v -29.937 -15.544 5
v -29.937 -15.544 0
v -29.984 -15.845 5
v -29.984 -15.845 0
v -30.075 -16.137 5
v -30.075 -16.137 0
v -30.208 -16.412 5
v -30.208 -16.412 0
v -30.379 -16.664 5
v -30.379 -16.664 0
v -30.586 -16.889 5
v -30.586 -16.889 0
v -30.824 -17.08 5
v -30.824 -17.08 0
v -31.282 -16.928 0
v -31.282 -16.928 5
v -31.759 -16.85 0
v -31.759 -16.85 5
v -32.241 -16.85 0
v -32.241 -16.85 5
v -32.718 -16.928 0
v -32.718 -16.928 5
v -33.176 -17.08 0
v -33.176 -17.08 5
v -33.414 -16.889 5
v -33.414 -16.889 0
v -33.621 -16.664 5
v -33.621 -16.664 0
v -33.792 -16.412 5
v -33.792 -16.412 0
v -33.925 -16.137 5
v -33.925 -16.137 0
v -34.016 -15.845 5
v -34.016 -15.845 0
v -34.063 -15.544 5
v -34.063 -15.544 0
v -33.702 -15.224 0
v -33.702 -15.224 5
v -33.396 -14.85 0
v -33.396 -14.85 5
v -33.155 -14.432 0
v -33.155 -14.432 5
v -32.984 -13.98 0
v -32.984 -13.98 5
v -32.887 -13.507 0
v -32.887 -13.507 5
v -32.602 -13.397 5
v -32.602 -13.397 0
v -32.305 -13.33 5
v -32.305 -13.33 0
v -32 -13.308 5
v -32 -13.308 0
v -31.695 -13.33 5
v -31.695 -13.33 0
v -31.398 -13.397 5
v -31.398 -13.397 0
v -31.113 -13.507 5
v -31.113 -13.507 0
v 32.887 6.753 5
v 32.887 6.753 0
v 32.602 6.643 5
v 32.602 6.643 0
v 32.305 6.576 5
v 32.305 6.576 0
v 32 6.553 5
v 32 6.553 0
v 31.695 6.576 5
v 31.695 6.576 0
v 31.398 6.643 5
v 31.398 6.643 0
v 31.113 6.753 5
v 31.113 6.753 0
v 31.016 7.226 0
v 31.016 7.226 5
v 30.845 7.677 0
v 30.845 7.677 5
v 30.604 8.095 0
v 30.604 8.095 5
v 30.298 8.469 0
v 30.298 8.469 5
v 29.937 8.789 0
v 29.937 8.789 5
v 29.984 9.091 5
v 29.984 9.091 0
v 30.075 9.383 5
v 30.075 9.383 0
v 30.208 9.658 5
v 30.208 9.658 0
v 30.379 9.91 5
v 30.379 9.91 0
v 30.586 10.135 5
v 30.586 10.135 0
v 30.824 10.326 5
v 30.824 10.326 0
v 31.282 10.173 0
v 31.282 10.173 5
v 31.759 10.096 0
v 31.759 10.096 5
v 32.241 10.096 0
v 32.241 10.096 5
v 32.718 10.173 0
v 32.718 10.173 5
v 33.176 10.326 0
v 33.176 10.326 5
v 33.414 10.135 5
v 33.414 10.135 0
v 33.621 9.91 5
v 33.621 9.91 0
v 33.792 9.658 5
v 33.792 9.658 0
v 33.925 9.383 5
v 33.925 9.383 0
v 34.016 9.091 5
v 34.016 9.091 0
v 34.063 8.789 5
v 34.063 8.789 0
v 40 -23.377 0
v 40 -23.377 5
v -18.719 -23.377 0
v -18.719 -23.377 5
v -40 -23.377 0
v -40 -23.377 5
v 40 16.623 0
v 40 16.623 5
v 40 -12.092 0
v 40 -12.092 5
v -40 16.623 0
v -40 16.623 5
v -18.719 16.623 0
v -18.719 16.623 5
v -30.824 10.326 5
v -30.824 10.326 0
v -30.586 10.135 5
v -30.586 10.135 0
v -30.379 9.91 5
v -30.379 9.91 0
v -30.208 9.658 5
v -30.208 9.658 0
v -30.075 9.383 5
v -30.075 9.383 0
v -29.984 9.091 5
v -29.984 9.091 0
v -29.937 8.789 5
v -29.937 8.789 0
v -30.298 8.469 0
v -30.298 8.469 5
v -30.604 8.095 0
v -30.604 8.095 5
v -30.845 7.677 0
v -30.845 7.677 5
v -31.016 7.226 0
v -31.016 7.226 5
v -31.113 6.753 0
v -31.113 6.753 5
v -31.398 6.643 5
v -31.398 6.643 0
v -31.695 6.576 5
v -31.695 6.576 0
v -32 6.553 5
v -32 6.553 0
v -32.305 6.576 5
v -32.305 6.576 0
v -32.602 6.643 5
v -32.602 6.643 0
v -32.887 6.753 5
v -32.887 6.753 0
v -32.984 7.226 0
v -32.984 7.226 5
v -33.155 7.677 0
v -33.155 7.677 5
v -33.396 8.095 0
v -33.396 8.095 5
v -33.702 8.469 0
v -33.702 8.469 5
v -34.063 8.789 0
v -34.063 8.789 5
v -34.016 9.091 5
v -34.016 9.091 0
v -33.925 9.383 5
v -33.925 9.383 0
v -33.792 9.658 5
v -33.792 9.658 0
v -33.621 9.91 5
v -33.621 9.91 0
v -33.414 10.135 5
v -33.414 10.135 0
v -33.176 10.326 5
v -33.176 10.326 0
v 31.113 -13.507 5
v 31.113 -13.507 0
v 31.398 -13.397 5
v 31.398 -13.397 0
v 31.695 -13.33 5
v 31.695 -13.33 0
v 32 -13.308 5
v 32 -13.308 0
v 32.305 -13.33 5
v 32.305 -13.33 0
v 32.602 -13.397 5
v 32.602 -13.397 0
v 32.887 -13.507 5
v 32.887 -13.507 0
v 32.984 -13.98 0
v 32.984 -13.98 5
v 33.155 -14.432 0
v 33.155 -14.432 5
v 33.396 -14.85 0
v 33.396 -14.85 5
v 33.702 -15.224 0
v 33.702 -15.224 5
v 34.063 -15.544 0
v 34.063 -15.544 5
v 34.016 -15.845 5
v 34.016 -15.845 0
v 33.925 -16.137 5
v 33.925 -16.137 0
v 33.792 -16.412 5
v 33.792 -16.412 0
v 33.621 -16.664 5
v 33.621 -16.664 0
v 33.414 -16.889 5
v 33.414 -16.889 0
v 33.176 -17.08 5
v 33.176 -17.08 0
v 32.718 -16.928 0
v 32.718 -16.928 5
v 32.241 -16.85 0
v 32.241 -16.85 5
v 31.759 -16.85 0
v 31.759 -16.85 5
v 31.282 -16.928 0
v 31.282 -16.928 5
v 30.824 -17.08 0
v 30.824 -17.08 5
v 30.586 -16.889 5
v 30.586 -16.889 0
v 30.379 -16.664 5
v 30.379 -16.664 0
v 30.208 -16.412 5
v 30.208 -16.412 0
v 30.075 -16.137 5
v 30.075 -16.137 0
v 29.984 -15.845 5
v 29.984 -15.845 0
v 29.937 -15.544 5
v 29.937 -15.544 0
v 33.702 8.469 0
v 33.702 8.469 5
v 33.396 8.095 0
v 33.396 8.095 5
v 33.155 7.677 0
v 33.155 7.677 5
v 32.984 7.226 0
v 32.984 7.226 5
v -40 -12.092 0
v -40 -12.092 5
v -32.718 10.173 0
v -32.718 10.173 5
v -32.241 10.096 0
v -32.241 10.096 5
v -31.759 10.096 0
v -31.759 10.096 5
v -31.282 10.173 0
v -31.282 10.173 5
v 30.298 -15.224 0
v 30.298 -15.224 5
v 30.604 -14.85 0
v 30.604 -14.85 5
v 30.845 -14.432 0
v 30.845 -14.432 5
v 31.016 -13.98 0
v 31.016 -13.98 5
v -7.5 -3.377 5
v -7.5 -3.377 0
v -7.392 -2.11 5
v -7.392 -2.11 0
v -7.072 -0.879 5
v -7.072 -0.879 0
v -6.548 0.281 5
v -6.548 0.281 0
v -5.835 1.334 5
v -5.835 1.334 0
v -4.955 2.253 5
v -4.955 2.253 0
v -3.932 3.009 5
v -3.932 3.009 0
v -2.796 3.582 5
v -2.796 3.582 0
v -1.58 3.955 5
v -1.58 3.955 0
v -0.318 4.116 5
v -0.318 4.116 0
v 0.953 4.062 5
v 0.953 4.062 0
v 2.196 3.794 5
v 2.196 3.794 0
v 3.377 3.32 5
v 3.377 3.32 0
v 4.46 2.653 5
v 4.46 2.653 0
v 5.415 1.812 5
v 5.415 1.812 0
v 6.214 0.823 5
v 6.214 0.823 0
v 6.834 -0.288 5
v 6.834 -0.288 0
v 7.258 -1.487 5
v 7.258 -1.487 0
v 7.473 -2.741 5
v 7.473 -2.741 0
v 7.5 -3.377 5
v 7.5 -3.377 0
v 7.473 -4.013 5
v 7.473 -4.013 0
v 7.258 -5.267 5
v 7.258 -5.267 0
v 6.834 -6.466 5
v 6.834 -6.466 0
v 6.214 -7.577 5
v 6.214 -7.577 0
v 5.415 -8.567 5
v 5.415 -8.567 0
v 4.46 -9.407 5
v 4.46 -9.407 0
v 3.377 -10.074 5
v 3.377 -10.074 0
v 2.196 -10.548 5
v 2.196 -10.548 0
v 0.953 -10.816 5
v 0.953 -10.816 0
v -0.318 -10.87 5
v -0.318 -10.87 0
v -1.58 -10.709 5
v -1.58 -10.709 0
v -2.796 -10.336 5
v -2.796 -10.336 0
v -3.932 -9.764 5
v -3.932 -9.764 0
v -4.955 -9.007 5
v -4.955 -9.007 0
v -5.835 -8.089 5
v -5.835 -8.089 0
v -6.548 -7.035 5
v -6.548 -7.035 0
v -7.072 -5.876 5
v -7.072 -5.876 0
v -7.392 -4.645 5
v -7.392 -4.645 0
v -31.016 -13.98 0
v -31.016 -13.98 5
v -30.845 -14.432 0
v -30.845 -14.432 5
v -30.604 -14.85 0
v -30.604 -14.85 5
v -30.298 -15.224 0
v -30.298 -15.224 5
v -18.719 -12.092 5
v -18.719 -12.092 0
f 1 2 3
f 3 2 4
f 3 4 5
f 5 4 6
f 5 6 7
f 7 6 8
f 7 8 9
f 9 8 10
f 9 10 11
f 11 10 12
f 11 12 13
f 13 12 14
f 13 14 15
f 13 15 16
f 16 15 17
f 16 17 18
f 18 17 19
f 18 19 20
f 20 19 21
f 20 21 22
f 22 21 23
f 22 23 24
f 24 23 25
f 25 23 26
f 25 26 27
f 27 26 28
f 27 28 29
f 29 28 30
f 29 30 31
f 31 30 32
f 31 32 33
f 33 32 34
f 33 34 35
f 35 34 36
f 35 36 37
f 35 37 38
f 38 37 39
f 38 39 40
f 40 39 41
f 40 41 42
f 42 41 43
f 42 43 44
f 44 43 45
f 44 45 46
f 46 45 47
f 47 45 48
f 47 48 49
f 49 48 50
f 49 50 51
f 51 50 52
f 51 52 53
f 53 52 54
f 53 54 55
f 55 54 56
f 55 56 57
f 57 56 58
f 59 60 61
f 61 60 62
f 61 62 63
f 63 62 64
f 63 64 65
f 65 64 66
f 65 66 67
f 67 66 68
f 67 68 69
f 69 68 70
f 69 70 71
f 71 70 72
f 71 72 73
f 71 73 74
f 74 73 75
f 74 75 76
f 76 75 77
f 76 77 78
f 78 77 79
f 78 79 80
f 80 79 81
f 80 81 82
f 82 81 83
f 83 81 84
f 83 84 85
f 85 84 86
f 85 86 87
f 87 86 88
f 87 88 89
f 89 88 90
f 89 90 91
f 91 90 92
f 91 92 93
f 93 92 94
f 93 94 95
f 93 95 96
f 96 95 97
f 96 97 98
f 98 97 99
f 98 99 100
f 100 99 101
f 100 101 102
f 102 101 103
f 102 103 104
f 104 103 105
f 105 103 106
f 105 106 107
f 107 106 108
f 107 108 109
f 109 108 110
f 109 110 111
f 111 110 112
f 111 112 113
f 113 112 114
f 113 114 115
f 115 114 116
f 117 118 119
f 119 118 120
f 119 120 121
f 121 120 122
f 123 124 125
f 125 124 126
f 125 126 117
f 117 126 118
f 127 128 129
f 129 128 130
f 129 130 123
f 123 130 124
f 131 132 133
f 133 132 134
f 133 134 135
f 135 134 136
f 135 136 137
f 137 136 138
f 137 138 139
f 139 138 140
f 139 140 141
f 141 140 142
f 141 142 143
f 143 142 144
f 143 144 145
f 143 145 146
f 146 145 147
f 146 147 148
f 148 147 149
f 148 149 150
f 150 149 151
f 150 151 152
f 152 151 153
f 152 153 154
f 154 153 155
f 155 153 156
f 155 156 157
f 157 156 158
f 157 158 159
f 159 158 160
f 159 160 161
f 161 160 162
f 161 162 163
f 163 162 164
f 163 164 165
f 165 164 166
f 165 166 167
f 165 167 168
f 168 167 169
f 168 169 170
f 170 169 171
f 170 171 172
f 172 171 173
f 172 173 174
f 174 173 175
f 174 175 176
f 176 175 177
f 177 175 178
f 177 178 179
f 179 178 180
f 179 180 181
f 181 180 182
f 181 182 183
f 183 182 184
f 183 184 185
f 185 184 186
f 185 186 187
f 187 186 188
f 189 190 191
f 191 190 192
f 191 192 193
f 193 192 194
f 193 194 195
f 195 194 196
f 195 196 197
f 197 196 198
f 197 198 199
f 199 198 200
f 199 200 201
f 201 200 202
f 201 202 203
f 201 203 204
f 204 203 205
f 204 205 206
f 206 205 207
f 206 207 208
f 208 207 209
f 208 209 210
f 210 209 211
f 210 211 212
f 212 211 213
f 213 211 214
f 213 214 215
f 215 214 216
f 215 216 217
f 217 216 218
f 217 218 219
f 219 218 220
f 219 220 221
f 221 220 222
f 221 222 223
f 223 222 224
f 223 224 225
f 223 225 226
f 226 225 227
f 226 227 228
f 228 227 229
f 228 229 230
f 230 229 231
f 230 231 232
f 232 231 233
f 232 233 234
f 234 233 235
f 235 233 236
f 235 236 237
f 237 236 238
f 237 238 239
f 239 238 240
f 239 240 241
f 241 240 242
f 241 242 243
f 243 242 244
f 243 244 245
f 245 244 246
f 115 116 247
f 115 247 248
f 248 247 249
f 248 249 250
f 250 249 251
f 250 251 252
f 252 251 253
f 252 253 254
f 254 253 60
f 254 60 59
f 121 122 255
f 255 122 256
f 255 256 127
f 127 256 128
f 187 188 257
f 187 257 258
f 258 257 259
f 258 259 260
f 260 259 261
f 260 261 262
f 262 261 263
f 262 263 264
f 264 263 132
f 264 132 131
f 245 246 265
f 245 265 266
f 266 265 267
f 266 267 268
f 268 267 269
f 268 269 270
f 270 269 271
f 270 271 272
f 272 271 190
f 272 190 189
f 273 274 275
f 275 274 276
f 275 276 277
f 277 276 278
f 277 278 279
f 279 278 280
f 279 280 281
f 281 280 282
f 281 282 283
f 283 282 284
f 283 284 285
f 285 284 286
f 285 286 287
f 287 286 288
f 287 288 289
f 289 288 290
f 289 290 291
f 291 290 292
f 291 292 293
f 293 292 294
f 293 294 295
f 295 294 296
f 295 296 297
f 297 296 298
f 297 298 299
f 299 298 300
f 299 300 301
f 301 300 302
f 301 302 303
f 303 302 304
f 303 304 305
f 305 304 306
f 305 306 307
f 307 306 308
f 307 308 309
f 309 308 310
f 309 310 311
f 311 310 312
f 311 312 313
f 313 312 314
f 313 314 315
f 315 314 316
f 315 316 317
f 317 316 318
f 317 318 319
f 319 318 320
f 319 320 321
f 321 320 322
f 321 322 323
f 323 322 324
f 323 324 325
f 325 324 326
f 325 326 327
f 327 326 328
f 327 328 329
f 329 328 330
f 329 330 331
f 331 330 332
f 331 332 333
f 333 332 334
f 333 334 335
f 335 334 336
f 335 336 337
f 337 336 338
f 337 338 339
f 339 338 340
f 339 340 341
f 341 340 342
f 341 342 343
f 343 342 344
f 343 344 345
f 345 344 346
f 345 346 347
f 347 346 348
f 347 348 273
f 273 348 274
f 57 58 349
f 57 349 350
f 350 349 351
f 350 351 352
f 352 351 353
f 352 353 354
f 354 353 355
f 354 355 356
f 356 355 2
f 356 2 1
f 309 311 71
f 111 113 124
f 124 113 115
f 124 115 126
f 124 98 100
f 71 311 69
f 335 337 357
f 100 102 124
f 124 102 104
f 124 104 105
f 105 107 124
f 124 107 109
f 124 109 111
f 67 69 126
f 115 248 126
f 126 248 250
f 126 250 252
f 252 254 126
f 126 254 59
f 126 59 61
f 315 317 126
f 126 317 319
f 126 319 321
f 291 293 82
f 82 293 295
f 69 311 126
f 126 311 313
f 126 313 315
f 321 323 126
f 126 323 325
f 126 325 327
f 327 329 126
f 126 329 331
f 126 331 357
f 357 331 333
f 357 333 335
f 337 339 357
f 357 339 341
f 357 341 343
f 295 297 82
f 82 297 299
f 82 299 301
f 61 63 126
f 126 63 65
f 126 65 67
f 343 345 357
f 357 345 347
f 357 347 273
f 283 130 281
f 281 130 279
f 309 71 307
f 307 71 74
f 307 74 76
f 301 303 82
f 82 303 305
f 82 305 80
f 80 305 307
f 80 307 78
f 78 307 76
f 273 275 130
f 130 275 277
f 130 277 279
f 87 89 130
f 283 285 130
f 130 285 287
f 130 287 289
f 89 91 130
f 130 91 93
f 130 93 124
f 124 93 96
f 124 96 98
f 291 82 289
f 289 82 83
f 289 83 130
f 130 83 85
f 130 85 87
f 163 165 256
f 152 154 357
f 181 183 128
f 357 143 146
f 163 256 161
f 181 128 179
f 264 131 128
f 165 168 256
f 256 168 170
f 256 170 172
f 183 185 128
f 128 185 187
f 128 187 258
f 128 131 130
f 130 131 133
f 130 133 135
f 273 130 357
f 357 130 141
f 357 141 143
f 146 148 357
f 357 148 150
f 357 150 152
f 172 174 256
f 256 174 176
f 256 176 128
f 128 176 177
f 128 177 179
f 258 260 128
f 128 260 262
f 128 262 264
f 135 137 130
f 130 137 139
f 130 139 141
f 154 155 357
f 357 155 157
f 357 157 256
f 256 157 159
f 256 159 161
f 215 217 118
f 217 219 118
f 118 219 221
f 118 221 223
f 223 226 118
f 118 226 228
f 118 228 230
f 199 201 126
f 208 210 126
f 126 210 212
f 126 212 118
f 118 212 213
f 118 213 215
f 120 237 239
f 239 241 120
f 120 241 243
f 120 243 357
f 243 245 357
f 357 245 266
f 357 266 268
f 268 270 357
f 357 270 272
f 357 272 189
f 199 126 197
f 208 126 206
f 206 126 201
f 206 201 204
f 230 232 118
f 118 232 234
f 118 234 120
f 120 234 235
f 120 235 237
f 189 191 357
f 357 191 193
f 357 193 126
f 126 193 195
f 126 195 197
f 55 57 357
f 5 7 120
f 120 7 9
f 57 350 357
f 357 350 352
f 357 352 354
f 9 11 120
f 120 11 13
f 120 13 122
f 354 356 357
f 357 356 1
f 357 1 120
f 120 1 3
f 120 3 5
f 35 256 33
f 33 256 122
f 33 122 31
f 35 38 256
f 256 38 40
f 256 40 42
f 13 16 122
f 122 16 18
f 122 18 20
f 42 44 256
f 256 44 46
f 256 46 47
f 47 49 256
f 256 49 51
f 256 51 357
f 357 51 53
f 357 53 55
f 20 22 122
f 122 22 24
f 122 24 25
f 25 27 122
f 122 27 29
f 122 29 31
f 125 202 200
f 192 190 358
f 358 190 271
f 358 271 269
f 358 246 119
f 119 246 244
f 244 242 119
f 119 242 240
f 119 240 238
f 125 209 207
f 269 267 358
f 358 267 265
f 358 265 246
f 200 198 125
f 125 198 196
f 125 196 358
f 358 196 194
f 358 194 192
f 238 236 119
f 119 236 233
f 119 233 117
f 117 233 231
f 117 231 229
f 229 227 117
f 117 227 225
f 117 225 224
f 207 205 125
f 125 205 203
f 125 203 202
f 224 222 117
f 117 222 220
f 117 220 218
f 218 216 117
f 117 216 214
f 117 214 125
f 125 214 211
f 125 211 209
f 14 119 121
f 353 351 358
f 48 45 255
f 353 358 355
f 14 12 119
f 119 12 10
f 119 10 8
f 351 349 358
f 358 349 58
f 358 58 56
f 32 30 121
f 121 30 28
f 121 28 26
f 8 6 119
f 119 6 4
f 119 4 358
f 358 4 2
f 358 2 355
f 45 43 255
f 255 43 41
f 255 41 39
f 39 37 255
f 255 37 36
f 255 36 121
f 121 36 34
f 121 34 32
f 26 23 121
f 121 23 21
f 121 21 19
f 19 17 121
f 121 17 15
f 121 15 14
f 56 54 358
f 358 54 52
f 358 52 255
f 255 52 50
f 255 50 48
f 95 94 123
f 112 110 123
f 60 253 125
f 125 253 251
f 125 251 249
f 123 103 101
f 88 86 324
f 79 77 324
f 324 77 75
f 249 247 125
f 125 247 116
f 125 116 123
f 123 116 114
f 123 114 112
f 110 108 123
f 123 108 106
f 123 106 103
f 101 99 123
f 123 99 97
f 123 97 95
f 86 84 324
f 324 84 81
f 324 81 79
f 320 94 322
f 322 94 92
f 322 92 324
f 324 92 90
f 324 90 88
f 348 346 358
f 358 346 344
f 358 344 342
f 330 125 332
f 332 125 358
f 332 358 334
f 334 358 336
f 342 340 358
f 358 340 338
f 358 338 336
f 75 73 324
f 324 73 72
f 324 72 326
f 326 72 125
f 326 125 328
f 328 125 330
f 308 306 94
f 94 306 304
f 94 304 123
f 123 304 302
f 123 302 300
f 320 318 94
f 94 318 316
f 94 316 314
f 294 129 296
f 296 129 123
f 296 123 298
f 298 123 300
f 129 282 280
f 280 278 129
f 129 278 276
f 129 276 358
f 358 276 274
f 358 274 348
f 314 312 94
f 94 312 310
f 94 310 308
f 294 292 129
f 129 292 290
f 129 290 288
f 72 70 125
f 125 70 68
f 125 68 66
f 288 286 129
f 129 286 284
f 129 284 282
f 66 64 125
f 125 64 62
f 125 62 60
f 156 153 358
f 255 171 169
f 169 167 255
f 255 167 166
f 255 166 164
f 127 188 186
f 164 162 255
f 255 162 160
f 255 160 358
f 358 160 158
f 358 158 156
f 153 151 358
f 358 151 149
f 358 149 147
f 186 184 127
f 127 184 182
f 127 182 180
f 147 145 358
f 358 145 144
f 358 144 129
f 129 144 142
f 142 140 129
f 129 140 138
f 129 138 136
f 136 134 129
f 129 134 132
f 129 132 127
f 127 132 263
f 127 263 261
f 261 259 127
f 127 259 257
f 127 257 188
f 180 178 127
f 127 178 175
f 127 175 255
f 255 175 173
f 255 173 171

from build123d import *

# Parameters (mm, degrees)
ESQUISSE1_W        = 80
ESQUISSE1_H        = 40
ESQUISSE1_R        = 7.5
ESQUISSE1_R_2      = 2.069624396
BOSS_EXTRU_1_DEPTH = 5


with BuildPart() as part:
    # Esquisse1 → Boss.-Extru.1 (new body)
    # profile 1 of 13: a face of its own
    with BuildSketch(Plane.XY):
        with Locations((0, -3.377163011)):
            Rectangle(ESQUISSE1_W, ESQUISSE1_H)
        with Locations((0, -3.377163011)):
            Circle(ESQUISSE1_R, mode=Mode.SUBTRACT)
        with Locations((32, -15.377163011)):
            Circle(ESQUISSE1_R_2, mode=Mode.SUBTRACT)
        with Locations((-32, 8.622836989)):
            Circle(ESQUISSE1_R_2, mode=Mode.SUBTRACT)
        with Locations((32, 8.622836989)):
            Circle(ESQUISSE1_R_2, mode=Mode.SUBTRACT)
        with Locations((-32, -15.377163011)):
            Circle(ESQUISSE1_R_2, mode=Mode.SUBTRACT)
    # profile 2 of 13: a face of its own
    with BuildSketch(Plane.XY):
        with BuildLine():
            ThreePointArc((-34.062905963, 8.789462695), (-33.792347303, 7.588024791), (-32.887150887, 6.752995165))
            ThreePointArc((-32.887150887, 6.752995165), (-33.267182328, 7.89122893), (-34.062905963, 8.789462695))
        make_face()
    # profile 3 of 13: a face of its own
    with BuildSketch(Plane.XY):
        with BuildLine():
            ThreePointArc((-33.175755077, 10.326053105), (-32, 10.086053105), (-30.824244923, 10.326053105))
            ThreePointArc((-30.824244923, 10.326053105), (-32, 10.692461384), (-33.175755077, 10.326053105))
        make_face()
    # profile 4 of 13: a face of its own
    with BuildSketch(Plane.XY):
        with BuildLine():
            ThreePointArc((-31.112849113, 6.752995165), (-30.250798145, 7.516655263), (-29.930375604, 8.622836989))
            ThreePointArc((-29.930375604, 8.622836989), (-29.932055895, 8.706217537), (-29.937094037, 8.789462695))
            ThreePointArc((-29.937094037, 8.789462695), (-30.732817672, 7.89122893), (-31.112849113, 6.752995165))
        make_face()
    # profile 5 of 13: a face of its own
    with BuildSketch(Plane.XY):
        with BuildLine():
            ThreePointArc((-29.930375604, -15.377163011), (-30.250798145, -14.270981286), (-31.112849113, -13.507321188))
            ThreePointArc((-31.112849113, -13.507321188), (-30.732817672, -14.645554953), (-29.937094037, -15.543788718))
            ThreePointArc((-29.937094037, -15.543788718), (-29.932055895, -15.46054356), (-29.930375604, -15.377163011))
        make_face()
    # profile 6 of 13: a face of its own
    with BuildSketch(Plane.XY):
        with BuildLine():
            ThreePointArc((-34.062905963, -15.543788718), (-33.267182328, -14.645554953), (-32.887150887, -13.507321188))
            ThreePointArc((-32.887150887, -13.507321188), (-33.792347303, -14.342350814), (-34.062905963, -15.543788718))
        make_face()
    # profile 7 of 13: a face of its own
    with BuildSketch(Plane.XY):
        with BuildLine():
            ThreePointArc((-30.824244923, -17.080379128), (-32, -16.840379128), (-33.175755077, -17.080379128))
            ThreePointArc((-33.175755077, -17.080379128), (-32, -17.446787407), (-30.824244923, -17.080379128))
        make_face()
    # profile 8 of 13: a face of its own
    with BuildSketch(Plane.XY):
        with BuildLine():
            ThreePointArc((30.824244923, 10.326053105), (32, 10.086053105), (33.175755077, 10.326053105))
            ThreePointArc((33.175755077, 10.326053105), (32, 10.692461384), (30.824244923, 10.326053105))
        make_face()
    # profile 9 of 13: a face of its own
    with BuildSketch(Plane.XY):
        with BuildLine():
            ThreePointArc((29.937094037, 8.789462695), (30.207652697, 7.588024791), (31.112849113, 6.752995165))
            ThreePointArc((31.112849113, 6.752995165), (30.732817672, 7.89122893), (29.937094037, 8.789462695))
        make_face()
    # profile 10 of 13: a face of its own
    with BuildSketch(Plane.XY):
        with BuildLine():
            ThreePointArc((34.062905963, 8.789462695), (33.267182328, 7.89122893), (32.887150887, 6.752995165))
            ThreePointArc((32.887150887, 6.752995165), (33.749201855, 7.516655263), (34.069624396, 8.622836989))
            ThreePointArc((34.069624396, 8.622836989), (34.067944105, 8.706217537), (34.062905963, 8.789462695))
        make_face()
    # profile 11 of 13: a face of its own
    with BuildSketch(Plane.XY):
        with BuildLine():
            ThreePointArc((34.062905963, -15.543788718), (34.067944105, -15.46054356), (34.069624396, -15.377163011))
            ThreePointArc((34.069624396, -15.377163011), (33.749201855, -14.270981286), (32.887150887, -13.507321188))
            ThreePointArc((32.887150887, -13.507321188), (33.267182328, -14.645554953), (34.062905963, -15.543788718))
        make_face()
    # profile 12 of 13: a face of its own
    with BuildSketch(Plane.XY):
        with BuildLine():
            ThreePointArc((29.937094037, -15.543788718), (30.732817672, -14.645554953), (31.112849113, -13.507321188))
            ThreePointArc((31.112849113, -13.507321188), (30.207652697, -14.342350814), (29.937094037, -15.543788718))
        make_face()
    # profile 13 of 13: a face of its own
    with BuildSketch(Plane.XY):
        with BuildLine():
            ThreePointArc((30.824244923, -17.080379128), (32, -17.446787407), (33.175755077, -17.080379128))
            ThreePointArc((33.175755077, -17.080379128), (32, -16.840379128), (30.824244923, -17.080379128))
        make_face()
    extrude(amount=BOSS_EXTRU_1_DEPTH)


solid = part.part
